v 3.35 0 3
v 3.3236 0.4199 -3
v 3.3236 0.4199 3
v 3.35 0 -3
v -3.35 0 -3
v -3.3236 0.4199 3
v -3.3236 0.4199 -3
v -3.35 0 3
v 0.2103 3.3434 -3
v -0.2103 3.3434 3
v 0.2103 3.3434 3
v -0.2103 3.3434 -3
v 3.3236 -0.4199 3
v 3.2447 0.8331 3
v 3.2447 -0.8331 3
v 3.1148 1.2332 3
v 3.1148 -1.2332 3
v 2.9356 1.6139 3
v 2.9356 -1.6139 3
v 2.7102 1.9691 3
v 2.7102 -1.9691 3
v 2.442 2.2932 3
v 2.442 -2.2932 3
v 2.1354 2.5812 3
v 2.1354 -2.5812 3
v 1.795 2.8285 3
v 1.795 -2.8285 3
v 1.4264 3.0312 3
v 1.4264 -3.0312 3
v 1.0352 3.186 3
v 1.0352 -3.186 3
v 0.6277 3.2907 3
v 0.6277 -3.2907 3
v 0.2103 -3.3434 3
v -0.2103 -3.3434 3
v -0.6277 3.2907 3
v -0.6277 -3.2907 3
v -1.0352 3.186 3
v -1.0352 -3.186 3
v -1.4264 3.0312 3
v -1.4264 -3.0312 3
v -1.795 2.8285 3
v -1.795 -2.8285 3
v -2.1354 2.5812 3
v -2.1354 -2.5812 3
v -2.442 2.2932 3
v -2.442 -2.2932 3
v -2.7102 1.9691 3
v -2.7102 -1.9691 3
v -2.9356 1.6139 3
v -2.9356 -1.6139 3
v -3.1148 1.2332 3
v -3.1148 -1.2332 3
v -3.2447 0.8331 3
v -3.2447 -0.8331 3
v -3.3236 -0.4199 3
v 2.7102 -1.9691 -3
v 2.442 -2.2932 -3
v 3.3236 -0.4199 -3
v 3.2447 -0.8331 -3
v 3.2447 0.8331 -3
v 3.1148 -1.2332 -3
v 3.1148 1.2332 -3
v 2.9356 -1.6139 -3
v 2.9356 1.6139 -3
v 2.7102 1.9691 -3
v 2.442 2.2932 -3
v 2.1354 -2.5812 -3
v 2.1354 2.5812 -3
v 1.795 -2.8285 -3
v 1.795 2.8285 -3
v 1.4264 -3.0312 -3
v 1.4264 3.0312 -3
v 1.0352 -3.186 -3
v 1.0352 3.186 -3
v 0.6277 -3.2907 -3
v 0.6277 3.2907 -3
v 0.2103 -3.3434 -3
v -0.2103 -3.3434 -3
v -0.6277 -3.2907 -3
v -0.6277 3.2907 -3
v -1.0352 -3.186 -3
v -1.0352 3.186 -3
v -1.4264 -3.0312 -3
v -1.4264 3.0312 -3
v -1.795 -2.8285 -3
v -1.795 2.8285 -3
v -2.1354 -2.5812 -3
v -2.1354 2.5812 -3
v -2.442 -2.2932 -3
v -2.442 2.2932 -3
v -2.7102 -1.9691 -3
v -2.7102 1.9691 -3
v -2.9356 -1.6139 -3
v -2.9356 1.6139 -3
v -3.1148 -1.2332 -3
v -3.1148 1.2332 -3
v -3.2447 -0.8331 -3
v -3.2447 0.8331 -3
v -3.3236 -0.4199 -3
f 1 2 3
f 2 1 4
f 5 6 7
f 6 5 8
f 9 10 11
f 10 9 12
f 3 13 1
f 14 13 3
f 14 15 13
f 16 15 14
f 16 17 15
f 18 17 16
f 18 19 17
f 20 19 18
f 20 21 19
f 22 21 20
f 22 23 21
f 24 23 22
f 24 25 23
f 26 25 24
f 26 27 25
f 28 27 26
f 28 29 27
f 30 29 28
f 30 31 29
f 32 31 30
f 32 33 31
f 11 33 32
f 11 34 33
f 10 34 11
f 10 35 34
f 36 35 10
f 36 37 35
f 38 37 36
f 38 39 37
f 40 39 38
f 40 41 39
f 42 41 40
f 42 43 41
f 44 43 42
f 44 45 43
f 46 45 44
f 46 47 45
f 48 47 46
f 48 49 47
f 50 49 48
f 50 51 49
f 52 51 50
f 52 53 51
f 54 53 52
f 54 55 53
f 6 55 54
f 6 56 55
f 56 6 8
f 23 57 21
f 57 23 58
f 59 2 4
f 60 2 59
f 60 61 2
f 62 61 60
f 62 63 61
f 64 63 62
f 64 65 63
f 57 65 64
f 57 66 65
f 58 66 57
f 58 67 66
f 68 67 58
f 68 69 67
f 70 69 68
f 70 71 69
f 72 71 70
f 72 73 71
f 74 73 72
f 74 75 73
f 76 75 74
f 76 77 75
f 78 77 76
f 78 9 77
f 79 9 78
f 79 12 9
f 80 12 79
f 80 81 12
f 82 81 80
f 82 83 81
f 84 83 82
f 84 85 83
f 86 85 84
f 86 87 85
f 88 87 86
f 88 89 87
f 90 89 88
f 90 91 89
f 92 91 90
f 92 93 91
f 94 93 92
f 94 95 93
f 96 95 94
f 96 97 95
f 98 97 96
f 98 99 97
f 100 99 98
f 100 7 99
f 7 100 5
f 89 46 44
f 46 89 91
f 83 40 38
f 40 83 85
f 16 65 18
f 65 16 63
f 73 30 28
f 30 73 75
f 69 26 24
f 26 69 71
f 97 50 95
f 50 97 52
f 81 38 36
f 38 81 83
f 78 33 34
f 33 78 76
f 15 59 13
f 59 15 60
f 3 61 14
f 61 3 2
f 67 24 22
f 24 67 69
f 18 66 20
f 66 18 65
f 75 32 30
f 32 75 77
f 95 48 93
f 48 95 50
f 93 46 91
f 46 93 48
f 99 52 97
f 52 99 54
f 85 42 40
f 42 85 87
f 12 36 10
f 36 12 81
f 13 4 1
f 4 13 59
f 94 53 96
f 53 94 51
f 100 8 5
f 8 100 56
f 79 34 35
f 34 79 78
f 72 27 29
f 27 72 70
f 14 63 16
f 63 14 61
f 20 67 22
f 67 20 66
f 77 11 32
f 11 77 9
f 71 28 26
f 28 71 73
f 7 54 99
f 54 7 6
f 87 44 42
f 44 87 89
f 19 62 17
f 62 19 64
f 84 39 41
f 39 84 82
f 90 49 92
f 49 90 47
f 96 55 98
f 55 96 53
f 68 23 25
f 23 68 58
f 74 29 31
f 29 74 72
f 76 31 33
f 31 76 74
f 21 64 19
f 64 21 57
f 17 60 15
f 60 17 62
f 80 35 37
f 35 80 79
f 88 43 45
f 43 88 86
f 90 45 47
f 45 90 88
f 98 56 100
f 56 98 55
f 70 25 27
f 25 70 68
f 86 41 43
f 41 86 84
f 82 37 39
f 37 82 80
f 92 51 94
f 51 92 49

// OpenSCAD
$fn = 50;


difference() {
	union() {
		translate(v = [0, 0, -3.0000000000]) {
			cylinder(h = 6, r = 3.3500000000);
		}
	}
	union() {
		translate(v = [0, 0, -100.0000000000]) {
			cylinder(h = 200, r = 0);
		}
	}
}
